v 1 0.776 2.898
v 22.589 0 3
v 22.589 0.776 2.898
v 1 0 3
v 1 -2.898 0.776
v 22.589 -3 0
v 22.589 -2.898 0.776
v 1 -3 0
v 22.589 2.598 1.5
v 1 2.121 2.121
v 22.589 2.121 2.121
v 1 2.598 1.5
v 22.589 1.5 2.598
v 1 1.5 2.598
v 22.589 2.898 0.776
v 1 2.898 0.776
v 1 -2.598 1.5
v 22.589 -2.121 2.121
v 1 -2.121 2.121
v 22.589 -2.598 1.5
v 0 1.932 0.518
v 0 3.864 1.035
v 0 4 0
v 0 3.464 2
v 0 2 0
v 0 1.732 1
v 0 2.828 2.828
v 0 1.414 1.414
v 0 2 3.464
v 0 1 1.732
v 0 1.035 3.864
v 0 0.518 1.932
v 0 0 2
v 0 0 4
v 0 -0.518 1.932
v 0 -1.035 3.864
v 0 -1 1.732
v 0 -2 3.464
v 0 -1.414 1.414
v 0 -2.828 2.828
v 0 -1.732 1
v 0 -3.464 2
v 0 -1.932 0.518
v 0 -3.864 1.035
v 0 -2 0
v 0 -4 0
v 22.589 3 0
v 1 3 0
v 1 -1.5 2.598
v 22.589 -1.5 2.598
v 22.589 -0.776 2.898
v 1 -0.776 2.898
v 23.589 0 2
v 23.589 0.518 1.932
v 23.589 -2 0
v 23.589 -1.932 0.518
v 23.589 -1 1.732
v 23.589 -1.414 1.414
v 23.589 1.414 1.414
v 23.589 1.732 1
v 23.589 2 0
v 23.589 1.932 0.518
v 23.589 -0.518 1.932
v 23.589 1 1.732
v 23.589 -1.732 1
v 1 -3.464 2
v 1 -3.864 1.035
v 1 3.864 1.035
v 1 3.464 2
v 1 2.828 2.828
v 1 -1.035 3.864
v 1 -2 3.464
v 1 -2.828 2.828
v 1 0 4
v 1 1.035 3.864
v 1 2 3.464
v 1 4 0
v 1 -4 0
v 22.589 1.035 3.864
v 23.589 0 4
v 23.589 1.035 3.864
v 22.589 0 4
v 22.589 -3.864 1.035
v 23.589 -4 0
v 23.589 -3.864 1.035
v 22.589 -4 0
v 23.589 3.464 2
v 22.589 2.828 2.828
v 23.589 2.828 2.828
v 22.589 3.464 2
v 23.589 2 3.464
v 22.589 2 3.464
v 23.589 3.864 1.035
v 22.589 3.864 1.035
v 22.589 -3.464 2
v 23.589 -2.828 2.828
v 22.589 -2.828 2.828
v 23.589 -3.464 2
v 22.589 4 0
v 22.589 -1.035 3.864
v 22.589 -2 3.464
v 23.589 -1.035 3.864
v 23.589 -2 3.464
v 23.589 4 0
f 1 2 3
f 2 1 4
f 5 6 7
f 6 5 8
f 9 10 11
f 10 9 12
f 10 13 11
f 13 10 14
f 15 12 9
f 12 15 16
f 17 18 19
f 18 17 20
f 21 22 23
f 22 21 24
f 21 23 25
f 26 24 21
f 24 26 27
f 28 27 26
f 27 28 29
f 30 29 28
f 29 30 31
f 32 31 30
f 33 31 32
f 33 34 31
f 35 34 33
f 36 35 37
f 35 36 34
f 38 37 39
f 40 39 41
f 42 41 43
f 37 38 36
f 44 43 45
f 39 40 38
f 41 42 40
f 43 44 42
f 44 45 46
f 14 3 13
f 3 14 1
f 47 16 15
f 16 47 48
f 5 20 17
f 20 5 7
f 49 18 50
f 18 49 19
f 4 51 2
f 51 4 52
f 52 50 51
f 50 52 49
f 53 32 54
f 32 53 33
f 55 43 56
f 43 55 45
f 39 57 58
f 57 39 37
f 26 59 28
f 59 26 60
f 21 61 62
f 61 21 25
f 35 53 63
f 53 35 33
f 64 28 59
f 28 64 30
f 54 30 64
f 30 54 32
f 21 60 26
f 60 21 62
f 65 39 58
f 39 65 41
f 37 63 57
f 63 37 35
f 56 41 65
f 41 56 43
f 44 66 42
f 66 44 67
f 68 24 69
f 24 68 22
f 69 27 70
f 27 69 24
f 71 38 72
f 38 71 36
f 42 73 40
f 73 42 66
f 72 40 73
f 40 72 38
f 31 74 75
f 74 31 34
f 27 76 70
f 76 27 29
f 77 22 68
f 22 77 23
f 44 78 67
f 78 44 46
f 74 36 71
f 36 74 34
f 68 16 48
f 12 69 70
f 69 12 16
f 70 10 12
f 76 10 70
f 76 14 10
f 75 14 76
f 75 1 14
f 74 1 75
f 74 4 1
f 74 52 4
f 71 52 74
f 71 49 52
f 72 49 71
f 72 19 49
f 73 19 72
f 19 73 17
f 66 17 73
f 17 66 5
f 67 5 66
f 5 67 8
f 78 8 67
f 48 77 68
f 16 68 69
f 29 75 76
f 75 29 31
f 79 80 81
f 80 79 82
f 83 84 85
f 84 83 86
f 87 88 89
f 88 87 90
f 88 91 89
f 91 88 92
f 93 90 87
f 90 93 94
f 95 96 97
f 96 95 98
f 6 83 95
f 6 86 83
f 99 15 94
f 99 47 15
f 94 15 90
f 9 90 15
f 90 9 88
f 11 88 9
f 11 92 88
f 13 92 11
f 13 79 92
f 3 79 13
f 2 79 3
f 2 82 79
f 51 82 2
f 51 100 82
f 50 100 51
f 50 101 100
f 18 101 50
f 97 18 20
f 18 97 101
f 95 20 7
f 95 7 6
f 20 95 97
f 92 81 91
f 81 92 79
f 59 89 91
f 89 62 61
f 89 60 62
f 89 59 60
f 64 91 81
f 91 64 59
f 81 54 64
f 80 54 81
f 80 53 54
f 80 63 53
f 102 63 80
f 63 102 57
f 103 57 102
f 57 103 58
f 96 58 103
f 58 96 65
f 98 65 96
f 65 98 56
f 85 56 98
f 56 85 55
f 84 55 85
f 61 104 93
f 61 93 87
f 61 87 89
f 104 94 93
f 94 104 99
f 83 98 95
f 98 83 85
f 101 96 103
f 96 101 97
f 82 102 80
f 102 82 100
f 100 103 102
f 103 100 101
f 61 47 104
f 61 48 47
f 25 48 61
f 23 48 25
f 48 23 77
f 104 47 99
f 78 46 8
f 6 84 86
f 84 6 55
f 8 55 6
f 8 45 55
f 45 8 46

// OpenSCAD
// file: ../build_environments.scad
// build_environments.scad: modules to build level sections
//

module pool(diameter=10.0, wall_height=2.0, step_width=3.0, connections=[])
{
    difference() {
        union() {
        difference() {
            cylinder(h=0.5,r1=diameter+step_width,r2=diameter+step_width,$fn=48);
            translate([0,0,-0.1])
                cylinder(h=0.7,r1=diameter,r2=diameter,$fn=48);
        }
        difference() {
            cylinder(h=wall_height,r1=diameter+step_width+1.0,r2=diameter+step_width+1.0,$fn=48);
            translate([0,0,-0.1])
                cylinder(h=wall_height+0.2,r1=diameter+step_width,r2=diameter+step_width,$fn=48);
        }
        }
    
        for (c = connections)
        {
            rotate([0,90,0]) {
                angle = atan2(c[1],c[0]);
                rotate([-angle,0,0]) {
                    cylinder(h=diameter+5.0,r1=c[2],r2=c[2],$fn=48);
                }
            }
        }
    }
}

module straight(length=10.0, width=2.0, dy1=0.0, dy2=0.0, dz=0.0)
{
    dims = [0, 0, 0, 0, 0, (dz/length)];
    matrix = [
        [ 1, dims[0], dims[1], 0 ],
        [ dims[2], 1, dims[4], 0 ],
        [ dims[5], dims[3], 1, 0 ],
        [ 0, 0, 0, 1 ]
    ];
    multmatrix(matrix)
    difference() {
        translate([dy1,0,0])
        union() {
            rotate([0,90,0]) {
                difference() {
                    cylinder(h=(length-dy1-dy2),r1=width+1.0,r2=width+1.0,$fn=24);
                    translate([0,0,-0.1])
                        cylinder(h=(length-dy1-dy2+0.2),r1=width,r2=width,$fn=24);
                }
                difference() {
                    cylinder(h=1.0,r1=width+2.0,r2=width+2.0,$fn=24);
                    translate([0,0,-0.1])
                        cylinder(h=1.2,r1=width,r2=width,$fn=24);
                }
                translate([0,0,(length-dy1-dy2)-1.0]) {
                    difference() {
                        cylinder(h=1.0,r1=width+2.0,r2=width+2.0,$fn=24);
                        translate([0,0,-0.1])
                            cylinder(h=1.2,r1=width,r2=width,$fn=24);
                    }
                }
            }
        }
        translate([0,0,-(2*width+4.0)/2])
            cube([3*length,3*length,2*width+4.0],center=true);
    }
}

module curve(p0=[0,0], center=[0,0], dir=1, angle=0.0, width=2.0)
{
    radius = sqrt((p0[0]-center[0])*(p0[0]-center[0]) + (p0[1]-center[1])*(p0[1]-center[1]));
    if (dir == 0) {
        difference() {
            rotate([0,0,-90])
            difference() {
                rotate_extrude(angle = angle, convexity = 10, $fn=32)
                    translate([radius, 0, 0])
                        circle(r = width+1.0,$fn=24);
                rotate([0,0,-1.0])
                    rotate_extrude(angle = angle+2.0, convexity = 10, $fn=32)
                        translate([radius, 0, 0])
                            circle(r = width,$fn=24);
            }
            translate([0,0,-(2*width+4.0)/2])
                cube([5*radius,5*radius,2*width+4.0],center=true);
        }
    }
    else {
        difference() {
            rotate([0,0,90])
            difference() {
                rotate_extrude(angle = -angle, convexity = 10, $fn=32)
                    translate([radius, 0, 0])
                        circle(r = width+1.0,$fn=24);
                rotate([0,0,1.0])
                    rotate_extrude(angle = -angle-2.0, convexity = 10, $fn=32)
                        translate([radius, 0, 0])
                            circle(r = width,$fn=24);
            }
            translate([0,0,-(2*width+4.0)/2])
                cube([5*radius,5*radius,2*width+4.0],center=true);
        }
    }

}

// test pool
//pool(diameter=12.0000, wall_height=3.0000, step_width=3.0000, connections=[[0.0000,-26.0000,2.0000], [23.6074,0.0000,2.0000]]);

// test straight, slope
//straight(length=26.0000, width=2.0000, dy1=11.8322, dy2=6.7082, dz=0.0000);
//straight(length=29.1549, width=12.0000, dy1=0.0000, dy2=0.0000, dz=-15.0000);

// test curve
//curve(p0=[23.6074, 0.0000], center=[23.6074, 5.0000], dir=0, angle=60.1011, width=2.0000);
//curve(p0=[33.6426, 12.4219], center=[37.9771, 9.9295], dir=1, angle=120.4627, width=2.0000);
// main file
use <../build_environments.scad>;
straight(length=29.2455, width=2.0000, dy1=0.0000, dy2=5.6569, dz=0.0000);
